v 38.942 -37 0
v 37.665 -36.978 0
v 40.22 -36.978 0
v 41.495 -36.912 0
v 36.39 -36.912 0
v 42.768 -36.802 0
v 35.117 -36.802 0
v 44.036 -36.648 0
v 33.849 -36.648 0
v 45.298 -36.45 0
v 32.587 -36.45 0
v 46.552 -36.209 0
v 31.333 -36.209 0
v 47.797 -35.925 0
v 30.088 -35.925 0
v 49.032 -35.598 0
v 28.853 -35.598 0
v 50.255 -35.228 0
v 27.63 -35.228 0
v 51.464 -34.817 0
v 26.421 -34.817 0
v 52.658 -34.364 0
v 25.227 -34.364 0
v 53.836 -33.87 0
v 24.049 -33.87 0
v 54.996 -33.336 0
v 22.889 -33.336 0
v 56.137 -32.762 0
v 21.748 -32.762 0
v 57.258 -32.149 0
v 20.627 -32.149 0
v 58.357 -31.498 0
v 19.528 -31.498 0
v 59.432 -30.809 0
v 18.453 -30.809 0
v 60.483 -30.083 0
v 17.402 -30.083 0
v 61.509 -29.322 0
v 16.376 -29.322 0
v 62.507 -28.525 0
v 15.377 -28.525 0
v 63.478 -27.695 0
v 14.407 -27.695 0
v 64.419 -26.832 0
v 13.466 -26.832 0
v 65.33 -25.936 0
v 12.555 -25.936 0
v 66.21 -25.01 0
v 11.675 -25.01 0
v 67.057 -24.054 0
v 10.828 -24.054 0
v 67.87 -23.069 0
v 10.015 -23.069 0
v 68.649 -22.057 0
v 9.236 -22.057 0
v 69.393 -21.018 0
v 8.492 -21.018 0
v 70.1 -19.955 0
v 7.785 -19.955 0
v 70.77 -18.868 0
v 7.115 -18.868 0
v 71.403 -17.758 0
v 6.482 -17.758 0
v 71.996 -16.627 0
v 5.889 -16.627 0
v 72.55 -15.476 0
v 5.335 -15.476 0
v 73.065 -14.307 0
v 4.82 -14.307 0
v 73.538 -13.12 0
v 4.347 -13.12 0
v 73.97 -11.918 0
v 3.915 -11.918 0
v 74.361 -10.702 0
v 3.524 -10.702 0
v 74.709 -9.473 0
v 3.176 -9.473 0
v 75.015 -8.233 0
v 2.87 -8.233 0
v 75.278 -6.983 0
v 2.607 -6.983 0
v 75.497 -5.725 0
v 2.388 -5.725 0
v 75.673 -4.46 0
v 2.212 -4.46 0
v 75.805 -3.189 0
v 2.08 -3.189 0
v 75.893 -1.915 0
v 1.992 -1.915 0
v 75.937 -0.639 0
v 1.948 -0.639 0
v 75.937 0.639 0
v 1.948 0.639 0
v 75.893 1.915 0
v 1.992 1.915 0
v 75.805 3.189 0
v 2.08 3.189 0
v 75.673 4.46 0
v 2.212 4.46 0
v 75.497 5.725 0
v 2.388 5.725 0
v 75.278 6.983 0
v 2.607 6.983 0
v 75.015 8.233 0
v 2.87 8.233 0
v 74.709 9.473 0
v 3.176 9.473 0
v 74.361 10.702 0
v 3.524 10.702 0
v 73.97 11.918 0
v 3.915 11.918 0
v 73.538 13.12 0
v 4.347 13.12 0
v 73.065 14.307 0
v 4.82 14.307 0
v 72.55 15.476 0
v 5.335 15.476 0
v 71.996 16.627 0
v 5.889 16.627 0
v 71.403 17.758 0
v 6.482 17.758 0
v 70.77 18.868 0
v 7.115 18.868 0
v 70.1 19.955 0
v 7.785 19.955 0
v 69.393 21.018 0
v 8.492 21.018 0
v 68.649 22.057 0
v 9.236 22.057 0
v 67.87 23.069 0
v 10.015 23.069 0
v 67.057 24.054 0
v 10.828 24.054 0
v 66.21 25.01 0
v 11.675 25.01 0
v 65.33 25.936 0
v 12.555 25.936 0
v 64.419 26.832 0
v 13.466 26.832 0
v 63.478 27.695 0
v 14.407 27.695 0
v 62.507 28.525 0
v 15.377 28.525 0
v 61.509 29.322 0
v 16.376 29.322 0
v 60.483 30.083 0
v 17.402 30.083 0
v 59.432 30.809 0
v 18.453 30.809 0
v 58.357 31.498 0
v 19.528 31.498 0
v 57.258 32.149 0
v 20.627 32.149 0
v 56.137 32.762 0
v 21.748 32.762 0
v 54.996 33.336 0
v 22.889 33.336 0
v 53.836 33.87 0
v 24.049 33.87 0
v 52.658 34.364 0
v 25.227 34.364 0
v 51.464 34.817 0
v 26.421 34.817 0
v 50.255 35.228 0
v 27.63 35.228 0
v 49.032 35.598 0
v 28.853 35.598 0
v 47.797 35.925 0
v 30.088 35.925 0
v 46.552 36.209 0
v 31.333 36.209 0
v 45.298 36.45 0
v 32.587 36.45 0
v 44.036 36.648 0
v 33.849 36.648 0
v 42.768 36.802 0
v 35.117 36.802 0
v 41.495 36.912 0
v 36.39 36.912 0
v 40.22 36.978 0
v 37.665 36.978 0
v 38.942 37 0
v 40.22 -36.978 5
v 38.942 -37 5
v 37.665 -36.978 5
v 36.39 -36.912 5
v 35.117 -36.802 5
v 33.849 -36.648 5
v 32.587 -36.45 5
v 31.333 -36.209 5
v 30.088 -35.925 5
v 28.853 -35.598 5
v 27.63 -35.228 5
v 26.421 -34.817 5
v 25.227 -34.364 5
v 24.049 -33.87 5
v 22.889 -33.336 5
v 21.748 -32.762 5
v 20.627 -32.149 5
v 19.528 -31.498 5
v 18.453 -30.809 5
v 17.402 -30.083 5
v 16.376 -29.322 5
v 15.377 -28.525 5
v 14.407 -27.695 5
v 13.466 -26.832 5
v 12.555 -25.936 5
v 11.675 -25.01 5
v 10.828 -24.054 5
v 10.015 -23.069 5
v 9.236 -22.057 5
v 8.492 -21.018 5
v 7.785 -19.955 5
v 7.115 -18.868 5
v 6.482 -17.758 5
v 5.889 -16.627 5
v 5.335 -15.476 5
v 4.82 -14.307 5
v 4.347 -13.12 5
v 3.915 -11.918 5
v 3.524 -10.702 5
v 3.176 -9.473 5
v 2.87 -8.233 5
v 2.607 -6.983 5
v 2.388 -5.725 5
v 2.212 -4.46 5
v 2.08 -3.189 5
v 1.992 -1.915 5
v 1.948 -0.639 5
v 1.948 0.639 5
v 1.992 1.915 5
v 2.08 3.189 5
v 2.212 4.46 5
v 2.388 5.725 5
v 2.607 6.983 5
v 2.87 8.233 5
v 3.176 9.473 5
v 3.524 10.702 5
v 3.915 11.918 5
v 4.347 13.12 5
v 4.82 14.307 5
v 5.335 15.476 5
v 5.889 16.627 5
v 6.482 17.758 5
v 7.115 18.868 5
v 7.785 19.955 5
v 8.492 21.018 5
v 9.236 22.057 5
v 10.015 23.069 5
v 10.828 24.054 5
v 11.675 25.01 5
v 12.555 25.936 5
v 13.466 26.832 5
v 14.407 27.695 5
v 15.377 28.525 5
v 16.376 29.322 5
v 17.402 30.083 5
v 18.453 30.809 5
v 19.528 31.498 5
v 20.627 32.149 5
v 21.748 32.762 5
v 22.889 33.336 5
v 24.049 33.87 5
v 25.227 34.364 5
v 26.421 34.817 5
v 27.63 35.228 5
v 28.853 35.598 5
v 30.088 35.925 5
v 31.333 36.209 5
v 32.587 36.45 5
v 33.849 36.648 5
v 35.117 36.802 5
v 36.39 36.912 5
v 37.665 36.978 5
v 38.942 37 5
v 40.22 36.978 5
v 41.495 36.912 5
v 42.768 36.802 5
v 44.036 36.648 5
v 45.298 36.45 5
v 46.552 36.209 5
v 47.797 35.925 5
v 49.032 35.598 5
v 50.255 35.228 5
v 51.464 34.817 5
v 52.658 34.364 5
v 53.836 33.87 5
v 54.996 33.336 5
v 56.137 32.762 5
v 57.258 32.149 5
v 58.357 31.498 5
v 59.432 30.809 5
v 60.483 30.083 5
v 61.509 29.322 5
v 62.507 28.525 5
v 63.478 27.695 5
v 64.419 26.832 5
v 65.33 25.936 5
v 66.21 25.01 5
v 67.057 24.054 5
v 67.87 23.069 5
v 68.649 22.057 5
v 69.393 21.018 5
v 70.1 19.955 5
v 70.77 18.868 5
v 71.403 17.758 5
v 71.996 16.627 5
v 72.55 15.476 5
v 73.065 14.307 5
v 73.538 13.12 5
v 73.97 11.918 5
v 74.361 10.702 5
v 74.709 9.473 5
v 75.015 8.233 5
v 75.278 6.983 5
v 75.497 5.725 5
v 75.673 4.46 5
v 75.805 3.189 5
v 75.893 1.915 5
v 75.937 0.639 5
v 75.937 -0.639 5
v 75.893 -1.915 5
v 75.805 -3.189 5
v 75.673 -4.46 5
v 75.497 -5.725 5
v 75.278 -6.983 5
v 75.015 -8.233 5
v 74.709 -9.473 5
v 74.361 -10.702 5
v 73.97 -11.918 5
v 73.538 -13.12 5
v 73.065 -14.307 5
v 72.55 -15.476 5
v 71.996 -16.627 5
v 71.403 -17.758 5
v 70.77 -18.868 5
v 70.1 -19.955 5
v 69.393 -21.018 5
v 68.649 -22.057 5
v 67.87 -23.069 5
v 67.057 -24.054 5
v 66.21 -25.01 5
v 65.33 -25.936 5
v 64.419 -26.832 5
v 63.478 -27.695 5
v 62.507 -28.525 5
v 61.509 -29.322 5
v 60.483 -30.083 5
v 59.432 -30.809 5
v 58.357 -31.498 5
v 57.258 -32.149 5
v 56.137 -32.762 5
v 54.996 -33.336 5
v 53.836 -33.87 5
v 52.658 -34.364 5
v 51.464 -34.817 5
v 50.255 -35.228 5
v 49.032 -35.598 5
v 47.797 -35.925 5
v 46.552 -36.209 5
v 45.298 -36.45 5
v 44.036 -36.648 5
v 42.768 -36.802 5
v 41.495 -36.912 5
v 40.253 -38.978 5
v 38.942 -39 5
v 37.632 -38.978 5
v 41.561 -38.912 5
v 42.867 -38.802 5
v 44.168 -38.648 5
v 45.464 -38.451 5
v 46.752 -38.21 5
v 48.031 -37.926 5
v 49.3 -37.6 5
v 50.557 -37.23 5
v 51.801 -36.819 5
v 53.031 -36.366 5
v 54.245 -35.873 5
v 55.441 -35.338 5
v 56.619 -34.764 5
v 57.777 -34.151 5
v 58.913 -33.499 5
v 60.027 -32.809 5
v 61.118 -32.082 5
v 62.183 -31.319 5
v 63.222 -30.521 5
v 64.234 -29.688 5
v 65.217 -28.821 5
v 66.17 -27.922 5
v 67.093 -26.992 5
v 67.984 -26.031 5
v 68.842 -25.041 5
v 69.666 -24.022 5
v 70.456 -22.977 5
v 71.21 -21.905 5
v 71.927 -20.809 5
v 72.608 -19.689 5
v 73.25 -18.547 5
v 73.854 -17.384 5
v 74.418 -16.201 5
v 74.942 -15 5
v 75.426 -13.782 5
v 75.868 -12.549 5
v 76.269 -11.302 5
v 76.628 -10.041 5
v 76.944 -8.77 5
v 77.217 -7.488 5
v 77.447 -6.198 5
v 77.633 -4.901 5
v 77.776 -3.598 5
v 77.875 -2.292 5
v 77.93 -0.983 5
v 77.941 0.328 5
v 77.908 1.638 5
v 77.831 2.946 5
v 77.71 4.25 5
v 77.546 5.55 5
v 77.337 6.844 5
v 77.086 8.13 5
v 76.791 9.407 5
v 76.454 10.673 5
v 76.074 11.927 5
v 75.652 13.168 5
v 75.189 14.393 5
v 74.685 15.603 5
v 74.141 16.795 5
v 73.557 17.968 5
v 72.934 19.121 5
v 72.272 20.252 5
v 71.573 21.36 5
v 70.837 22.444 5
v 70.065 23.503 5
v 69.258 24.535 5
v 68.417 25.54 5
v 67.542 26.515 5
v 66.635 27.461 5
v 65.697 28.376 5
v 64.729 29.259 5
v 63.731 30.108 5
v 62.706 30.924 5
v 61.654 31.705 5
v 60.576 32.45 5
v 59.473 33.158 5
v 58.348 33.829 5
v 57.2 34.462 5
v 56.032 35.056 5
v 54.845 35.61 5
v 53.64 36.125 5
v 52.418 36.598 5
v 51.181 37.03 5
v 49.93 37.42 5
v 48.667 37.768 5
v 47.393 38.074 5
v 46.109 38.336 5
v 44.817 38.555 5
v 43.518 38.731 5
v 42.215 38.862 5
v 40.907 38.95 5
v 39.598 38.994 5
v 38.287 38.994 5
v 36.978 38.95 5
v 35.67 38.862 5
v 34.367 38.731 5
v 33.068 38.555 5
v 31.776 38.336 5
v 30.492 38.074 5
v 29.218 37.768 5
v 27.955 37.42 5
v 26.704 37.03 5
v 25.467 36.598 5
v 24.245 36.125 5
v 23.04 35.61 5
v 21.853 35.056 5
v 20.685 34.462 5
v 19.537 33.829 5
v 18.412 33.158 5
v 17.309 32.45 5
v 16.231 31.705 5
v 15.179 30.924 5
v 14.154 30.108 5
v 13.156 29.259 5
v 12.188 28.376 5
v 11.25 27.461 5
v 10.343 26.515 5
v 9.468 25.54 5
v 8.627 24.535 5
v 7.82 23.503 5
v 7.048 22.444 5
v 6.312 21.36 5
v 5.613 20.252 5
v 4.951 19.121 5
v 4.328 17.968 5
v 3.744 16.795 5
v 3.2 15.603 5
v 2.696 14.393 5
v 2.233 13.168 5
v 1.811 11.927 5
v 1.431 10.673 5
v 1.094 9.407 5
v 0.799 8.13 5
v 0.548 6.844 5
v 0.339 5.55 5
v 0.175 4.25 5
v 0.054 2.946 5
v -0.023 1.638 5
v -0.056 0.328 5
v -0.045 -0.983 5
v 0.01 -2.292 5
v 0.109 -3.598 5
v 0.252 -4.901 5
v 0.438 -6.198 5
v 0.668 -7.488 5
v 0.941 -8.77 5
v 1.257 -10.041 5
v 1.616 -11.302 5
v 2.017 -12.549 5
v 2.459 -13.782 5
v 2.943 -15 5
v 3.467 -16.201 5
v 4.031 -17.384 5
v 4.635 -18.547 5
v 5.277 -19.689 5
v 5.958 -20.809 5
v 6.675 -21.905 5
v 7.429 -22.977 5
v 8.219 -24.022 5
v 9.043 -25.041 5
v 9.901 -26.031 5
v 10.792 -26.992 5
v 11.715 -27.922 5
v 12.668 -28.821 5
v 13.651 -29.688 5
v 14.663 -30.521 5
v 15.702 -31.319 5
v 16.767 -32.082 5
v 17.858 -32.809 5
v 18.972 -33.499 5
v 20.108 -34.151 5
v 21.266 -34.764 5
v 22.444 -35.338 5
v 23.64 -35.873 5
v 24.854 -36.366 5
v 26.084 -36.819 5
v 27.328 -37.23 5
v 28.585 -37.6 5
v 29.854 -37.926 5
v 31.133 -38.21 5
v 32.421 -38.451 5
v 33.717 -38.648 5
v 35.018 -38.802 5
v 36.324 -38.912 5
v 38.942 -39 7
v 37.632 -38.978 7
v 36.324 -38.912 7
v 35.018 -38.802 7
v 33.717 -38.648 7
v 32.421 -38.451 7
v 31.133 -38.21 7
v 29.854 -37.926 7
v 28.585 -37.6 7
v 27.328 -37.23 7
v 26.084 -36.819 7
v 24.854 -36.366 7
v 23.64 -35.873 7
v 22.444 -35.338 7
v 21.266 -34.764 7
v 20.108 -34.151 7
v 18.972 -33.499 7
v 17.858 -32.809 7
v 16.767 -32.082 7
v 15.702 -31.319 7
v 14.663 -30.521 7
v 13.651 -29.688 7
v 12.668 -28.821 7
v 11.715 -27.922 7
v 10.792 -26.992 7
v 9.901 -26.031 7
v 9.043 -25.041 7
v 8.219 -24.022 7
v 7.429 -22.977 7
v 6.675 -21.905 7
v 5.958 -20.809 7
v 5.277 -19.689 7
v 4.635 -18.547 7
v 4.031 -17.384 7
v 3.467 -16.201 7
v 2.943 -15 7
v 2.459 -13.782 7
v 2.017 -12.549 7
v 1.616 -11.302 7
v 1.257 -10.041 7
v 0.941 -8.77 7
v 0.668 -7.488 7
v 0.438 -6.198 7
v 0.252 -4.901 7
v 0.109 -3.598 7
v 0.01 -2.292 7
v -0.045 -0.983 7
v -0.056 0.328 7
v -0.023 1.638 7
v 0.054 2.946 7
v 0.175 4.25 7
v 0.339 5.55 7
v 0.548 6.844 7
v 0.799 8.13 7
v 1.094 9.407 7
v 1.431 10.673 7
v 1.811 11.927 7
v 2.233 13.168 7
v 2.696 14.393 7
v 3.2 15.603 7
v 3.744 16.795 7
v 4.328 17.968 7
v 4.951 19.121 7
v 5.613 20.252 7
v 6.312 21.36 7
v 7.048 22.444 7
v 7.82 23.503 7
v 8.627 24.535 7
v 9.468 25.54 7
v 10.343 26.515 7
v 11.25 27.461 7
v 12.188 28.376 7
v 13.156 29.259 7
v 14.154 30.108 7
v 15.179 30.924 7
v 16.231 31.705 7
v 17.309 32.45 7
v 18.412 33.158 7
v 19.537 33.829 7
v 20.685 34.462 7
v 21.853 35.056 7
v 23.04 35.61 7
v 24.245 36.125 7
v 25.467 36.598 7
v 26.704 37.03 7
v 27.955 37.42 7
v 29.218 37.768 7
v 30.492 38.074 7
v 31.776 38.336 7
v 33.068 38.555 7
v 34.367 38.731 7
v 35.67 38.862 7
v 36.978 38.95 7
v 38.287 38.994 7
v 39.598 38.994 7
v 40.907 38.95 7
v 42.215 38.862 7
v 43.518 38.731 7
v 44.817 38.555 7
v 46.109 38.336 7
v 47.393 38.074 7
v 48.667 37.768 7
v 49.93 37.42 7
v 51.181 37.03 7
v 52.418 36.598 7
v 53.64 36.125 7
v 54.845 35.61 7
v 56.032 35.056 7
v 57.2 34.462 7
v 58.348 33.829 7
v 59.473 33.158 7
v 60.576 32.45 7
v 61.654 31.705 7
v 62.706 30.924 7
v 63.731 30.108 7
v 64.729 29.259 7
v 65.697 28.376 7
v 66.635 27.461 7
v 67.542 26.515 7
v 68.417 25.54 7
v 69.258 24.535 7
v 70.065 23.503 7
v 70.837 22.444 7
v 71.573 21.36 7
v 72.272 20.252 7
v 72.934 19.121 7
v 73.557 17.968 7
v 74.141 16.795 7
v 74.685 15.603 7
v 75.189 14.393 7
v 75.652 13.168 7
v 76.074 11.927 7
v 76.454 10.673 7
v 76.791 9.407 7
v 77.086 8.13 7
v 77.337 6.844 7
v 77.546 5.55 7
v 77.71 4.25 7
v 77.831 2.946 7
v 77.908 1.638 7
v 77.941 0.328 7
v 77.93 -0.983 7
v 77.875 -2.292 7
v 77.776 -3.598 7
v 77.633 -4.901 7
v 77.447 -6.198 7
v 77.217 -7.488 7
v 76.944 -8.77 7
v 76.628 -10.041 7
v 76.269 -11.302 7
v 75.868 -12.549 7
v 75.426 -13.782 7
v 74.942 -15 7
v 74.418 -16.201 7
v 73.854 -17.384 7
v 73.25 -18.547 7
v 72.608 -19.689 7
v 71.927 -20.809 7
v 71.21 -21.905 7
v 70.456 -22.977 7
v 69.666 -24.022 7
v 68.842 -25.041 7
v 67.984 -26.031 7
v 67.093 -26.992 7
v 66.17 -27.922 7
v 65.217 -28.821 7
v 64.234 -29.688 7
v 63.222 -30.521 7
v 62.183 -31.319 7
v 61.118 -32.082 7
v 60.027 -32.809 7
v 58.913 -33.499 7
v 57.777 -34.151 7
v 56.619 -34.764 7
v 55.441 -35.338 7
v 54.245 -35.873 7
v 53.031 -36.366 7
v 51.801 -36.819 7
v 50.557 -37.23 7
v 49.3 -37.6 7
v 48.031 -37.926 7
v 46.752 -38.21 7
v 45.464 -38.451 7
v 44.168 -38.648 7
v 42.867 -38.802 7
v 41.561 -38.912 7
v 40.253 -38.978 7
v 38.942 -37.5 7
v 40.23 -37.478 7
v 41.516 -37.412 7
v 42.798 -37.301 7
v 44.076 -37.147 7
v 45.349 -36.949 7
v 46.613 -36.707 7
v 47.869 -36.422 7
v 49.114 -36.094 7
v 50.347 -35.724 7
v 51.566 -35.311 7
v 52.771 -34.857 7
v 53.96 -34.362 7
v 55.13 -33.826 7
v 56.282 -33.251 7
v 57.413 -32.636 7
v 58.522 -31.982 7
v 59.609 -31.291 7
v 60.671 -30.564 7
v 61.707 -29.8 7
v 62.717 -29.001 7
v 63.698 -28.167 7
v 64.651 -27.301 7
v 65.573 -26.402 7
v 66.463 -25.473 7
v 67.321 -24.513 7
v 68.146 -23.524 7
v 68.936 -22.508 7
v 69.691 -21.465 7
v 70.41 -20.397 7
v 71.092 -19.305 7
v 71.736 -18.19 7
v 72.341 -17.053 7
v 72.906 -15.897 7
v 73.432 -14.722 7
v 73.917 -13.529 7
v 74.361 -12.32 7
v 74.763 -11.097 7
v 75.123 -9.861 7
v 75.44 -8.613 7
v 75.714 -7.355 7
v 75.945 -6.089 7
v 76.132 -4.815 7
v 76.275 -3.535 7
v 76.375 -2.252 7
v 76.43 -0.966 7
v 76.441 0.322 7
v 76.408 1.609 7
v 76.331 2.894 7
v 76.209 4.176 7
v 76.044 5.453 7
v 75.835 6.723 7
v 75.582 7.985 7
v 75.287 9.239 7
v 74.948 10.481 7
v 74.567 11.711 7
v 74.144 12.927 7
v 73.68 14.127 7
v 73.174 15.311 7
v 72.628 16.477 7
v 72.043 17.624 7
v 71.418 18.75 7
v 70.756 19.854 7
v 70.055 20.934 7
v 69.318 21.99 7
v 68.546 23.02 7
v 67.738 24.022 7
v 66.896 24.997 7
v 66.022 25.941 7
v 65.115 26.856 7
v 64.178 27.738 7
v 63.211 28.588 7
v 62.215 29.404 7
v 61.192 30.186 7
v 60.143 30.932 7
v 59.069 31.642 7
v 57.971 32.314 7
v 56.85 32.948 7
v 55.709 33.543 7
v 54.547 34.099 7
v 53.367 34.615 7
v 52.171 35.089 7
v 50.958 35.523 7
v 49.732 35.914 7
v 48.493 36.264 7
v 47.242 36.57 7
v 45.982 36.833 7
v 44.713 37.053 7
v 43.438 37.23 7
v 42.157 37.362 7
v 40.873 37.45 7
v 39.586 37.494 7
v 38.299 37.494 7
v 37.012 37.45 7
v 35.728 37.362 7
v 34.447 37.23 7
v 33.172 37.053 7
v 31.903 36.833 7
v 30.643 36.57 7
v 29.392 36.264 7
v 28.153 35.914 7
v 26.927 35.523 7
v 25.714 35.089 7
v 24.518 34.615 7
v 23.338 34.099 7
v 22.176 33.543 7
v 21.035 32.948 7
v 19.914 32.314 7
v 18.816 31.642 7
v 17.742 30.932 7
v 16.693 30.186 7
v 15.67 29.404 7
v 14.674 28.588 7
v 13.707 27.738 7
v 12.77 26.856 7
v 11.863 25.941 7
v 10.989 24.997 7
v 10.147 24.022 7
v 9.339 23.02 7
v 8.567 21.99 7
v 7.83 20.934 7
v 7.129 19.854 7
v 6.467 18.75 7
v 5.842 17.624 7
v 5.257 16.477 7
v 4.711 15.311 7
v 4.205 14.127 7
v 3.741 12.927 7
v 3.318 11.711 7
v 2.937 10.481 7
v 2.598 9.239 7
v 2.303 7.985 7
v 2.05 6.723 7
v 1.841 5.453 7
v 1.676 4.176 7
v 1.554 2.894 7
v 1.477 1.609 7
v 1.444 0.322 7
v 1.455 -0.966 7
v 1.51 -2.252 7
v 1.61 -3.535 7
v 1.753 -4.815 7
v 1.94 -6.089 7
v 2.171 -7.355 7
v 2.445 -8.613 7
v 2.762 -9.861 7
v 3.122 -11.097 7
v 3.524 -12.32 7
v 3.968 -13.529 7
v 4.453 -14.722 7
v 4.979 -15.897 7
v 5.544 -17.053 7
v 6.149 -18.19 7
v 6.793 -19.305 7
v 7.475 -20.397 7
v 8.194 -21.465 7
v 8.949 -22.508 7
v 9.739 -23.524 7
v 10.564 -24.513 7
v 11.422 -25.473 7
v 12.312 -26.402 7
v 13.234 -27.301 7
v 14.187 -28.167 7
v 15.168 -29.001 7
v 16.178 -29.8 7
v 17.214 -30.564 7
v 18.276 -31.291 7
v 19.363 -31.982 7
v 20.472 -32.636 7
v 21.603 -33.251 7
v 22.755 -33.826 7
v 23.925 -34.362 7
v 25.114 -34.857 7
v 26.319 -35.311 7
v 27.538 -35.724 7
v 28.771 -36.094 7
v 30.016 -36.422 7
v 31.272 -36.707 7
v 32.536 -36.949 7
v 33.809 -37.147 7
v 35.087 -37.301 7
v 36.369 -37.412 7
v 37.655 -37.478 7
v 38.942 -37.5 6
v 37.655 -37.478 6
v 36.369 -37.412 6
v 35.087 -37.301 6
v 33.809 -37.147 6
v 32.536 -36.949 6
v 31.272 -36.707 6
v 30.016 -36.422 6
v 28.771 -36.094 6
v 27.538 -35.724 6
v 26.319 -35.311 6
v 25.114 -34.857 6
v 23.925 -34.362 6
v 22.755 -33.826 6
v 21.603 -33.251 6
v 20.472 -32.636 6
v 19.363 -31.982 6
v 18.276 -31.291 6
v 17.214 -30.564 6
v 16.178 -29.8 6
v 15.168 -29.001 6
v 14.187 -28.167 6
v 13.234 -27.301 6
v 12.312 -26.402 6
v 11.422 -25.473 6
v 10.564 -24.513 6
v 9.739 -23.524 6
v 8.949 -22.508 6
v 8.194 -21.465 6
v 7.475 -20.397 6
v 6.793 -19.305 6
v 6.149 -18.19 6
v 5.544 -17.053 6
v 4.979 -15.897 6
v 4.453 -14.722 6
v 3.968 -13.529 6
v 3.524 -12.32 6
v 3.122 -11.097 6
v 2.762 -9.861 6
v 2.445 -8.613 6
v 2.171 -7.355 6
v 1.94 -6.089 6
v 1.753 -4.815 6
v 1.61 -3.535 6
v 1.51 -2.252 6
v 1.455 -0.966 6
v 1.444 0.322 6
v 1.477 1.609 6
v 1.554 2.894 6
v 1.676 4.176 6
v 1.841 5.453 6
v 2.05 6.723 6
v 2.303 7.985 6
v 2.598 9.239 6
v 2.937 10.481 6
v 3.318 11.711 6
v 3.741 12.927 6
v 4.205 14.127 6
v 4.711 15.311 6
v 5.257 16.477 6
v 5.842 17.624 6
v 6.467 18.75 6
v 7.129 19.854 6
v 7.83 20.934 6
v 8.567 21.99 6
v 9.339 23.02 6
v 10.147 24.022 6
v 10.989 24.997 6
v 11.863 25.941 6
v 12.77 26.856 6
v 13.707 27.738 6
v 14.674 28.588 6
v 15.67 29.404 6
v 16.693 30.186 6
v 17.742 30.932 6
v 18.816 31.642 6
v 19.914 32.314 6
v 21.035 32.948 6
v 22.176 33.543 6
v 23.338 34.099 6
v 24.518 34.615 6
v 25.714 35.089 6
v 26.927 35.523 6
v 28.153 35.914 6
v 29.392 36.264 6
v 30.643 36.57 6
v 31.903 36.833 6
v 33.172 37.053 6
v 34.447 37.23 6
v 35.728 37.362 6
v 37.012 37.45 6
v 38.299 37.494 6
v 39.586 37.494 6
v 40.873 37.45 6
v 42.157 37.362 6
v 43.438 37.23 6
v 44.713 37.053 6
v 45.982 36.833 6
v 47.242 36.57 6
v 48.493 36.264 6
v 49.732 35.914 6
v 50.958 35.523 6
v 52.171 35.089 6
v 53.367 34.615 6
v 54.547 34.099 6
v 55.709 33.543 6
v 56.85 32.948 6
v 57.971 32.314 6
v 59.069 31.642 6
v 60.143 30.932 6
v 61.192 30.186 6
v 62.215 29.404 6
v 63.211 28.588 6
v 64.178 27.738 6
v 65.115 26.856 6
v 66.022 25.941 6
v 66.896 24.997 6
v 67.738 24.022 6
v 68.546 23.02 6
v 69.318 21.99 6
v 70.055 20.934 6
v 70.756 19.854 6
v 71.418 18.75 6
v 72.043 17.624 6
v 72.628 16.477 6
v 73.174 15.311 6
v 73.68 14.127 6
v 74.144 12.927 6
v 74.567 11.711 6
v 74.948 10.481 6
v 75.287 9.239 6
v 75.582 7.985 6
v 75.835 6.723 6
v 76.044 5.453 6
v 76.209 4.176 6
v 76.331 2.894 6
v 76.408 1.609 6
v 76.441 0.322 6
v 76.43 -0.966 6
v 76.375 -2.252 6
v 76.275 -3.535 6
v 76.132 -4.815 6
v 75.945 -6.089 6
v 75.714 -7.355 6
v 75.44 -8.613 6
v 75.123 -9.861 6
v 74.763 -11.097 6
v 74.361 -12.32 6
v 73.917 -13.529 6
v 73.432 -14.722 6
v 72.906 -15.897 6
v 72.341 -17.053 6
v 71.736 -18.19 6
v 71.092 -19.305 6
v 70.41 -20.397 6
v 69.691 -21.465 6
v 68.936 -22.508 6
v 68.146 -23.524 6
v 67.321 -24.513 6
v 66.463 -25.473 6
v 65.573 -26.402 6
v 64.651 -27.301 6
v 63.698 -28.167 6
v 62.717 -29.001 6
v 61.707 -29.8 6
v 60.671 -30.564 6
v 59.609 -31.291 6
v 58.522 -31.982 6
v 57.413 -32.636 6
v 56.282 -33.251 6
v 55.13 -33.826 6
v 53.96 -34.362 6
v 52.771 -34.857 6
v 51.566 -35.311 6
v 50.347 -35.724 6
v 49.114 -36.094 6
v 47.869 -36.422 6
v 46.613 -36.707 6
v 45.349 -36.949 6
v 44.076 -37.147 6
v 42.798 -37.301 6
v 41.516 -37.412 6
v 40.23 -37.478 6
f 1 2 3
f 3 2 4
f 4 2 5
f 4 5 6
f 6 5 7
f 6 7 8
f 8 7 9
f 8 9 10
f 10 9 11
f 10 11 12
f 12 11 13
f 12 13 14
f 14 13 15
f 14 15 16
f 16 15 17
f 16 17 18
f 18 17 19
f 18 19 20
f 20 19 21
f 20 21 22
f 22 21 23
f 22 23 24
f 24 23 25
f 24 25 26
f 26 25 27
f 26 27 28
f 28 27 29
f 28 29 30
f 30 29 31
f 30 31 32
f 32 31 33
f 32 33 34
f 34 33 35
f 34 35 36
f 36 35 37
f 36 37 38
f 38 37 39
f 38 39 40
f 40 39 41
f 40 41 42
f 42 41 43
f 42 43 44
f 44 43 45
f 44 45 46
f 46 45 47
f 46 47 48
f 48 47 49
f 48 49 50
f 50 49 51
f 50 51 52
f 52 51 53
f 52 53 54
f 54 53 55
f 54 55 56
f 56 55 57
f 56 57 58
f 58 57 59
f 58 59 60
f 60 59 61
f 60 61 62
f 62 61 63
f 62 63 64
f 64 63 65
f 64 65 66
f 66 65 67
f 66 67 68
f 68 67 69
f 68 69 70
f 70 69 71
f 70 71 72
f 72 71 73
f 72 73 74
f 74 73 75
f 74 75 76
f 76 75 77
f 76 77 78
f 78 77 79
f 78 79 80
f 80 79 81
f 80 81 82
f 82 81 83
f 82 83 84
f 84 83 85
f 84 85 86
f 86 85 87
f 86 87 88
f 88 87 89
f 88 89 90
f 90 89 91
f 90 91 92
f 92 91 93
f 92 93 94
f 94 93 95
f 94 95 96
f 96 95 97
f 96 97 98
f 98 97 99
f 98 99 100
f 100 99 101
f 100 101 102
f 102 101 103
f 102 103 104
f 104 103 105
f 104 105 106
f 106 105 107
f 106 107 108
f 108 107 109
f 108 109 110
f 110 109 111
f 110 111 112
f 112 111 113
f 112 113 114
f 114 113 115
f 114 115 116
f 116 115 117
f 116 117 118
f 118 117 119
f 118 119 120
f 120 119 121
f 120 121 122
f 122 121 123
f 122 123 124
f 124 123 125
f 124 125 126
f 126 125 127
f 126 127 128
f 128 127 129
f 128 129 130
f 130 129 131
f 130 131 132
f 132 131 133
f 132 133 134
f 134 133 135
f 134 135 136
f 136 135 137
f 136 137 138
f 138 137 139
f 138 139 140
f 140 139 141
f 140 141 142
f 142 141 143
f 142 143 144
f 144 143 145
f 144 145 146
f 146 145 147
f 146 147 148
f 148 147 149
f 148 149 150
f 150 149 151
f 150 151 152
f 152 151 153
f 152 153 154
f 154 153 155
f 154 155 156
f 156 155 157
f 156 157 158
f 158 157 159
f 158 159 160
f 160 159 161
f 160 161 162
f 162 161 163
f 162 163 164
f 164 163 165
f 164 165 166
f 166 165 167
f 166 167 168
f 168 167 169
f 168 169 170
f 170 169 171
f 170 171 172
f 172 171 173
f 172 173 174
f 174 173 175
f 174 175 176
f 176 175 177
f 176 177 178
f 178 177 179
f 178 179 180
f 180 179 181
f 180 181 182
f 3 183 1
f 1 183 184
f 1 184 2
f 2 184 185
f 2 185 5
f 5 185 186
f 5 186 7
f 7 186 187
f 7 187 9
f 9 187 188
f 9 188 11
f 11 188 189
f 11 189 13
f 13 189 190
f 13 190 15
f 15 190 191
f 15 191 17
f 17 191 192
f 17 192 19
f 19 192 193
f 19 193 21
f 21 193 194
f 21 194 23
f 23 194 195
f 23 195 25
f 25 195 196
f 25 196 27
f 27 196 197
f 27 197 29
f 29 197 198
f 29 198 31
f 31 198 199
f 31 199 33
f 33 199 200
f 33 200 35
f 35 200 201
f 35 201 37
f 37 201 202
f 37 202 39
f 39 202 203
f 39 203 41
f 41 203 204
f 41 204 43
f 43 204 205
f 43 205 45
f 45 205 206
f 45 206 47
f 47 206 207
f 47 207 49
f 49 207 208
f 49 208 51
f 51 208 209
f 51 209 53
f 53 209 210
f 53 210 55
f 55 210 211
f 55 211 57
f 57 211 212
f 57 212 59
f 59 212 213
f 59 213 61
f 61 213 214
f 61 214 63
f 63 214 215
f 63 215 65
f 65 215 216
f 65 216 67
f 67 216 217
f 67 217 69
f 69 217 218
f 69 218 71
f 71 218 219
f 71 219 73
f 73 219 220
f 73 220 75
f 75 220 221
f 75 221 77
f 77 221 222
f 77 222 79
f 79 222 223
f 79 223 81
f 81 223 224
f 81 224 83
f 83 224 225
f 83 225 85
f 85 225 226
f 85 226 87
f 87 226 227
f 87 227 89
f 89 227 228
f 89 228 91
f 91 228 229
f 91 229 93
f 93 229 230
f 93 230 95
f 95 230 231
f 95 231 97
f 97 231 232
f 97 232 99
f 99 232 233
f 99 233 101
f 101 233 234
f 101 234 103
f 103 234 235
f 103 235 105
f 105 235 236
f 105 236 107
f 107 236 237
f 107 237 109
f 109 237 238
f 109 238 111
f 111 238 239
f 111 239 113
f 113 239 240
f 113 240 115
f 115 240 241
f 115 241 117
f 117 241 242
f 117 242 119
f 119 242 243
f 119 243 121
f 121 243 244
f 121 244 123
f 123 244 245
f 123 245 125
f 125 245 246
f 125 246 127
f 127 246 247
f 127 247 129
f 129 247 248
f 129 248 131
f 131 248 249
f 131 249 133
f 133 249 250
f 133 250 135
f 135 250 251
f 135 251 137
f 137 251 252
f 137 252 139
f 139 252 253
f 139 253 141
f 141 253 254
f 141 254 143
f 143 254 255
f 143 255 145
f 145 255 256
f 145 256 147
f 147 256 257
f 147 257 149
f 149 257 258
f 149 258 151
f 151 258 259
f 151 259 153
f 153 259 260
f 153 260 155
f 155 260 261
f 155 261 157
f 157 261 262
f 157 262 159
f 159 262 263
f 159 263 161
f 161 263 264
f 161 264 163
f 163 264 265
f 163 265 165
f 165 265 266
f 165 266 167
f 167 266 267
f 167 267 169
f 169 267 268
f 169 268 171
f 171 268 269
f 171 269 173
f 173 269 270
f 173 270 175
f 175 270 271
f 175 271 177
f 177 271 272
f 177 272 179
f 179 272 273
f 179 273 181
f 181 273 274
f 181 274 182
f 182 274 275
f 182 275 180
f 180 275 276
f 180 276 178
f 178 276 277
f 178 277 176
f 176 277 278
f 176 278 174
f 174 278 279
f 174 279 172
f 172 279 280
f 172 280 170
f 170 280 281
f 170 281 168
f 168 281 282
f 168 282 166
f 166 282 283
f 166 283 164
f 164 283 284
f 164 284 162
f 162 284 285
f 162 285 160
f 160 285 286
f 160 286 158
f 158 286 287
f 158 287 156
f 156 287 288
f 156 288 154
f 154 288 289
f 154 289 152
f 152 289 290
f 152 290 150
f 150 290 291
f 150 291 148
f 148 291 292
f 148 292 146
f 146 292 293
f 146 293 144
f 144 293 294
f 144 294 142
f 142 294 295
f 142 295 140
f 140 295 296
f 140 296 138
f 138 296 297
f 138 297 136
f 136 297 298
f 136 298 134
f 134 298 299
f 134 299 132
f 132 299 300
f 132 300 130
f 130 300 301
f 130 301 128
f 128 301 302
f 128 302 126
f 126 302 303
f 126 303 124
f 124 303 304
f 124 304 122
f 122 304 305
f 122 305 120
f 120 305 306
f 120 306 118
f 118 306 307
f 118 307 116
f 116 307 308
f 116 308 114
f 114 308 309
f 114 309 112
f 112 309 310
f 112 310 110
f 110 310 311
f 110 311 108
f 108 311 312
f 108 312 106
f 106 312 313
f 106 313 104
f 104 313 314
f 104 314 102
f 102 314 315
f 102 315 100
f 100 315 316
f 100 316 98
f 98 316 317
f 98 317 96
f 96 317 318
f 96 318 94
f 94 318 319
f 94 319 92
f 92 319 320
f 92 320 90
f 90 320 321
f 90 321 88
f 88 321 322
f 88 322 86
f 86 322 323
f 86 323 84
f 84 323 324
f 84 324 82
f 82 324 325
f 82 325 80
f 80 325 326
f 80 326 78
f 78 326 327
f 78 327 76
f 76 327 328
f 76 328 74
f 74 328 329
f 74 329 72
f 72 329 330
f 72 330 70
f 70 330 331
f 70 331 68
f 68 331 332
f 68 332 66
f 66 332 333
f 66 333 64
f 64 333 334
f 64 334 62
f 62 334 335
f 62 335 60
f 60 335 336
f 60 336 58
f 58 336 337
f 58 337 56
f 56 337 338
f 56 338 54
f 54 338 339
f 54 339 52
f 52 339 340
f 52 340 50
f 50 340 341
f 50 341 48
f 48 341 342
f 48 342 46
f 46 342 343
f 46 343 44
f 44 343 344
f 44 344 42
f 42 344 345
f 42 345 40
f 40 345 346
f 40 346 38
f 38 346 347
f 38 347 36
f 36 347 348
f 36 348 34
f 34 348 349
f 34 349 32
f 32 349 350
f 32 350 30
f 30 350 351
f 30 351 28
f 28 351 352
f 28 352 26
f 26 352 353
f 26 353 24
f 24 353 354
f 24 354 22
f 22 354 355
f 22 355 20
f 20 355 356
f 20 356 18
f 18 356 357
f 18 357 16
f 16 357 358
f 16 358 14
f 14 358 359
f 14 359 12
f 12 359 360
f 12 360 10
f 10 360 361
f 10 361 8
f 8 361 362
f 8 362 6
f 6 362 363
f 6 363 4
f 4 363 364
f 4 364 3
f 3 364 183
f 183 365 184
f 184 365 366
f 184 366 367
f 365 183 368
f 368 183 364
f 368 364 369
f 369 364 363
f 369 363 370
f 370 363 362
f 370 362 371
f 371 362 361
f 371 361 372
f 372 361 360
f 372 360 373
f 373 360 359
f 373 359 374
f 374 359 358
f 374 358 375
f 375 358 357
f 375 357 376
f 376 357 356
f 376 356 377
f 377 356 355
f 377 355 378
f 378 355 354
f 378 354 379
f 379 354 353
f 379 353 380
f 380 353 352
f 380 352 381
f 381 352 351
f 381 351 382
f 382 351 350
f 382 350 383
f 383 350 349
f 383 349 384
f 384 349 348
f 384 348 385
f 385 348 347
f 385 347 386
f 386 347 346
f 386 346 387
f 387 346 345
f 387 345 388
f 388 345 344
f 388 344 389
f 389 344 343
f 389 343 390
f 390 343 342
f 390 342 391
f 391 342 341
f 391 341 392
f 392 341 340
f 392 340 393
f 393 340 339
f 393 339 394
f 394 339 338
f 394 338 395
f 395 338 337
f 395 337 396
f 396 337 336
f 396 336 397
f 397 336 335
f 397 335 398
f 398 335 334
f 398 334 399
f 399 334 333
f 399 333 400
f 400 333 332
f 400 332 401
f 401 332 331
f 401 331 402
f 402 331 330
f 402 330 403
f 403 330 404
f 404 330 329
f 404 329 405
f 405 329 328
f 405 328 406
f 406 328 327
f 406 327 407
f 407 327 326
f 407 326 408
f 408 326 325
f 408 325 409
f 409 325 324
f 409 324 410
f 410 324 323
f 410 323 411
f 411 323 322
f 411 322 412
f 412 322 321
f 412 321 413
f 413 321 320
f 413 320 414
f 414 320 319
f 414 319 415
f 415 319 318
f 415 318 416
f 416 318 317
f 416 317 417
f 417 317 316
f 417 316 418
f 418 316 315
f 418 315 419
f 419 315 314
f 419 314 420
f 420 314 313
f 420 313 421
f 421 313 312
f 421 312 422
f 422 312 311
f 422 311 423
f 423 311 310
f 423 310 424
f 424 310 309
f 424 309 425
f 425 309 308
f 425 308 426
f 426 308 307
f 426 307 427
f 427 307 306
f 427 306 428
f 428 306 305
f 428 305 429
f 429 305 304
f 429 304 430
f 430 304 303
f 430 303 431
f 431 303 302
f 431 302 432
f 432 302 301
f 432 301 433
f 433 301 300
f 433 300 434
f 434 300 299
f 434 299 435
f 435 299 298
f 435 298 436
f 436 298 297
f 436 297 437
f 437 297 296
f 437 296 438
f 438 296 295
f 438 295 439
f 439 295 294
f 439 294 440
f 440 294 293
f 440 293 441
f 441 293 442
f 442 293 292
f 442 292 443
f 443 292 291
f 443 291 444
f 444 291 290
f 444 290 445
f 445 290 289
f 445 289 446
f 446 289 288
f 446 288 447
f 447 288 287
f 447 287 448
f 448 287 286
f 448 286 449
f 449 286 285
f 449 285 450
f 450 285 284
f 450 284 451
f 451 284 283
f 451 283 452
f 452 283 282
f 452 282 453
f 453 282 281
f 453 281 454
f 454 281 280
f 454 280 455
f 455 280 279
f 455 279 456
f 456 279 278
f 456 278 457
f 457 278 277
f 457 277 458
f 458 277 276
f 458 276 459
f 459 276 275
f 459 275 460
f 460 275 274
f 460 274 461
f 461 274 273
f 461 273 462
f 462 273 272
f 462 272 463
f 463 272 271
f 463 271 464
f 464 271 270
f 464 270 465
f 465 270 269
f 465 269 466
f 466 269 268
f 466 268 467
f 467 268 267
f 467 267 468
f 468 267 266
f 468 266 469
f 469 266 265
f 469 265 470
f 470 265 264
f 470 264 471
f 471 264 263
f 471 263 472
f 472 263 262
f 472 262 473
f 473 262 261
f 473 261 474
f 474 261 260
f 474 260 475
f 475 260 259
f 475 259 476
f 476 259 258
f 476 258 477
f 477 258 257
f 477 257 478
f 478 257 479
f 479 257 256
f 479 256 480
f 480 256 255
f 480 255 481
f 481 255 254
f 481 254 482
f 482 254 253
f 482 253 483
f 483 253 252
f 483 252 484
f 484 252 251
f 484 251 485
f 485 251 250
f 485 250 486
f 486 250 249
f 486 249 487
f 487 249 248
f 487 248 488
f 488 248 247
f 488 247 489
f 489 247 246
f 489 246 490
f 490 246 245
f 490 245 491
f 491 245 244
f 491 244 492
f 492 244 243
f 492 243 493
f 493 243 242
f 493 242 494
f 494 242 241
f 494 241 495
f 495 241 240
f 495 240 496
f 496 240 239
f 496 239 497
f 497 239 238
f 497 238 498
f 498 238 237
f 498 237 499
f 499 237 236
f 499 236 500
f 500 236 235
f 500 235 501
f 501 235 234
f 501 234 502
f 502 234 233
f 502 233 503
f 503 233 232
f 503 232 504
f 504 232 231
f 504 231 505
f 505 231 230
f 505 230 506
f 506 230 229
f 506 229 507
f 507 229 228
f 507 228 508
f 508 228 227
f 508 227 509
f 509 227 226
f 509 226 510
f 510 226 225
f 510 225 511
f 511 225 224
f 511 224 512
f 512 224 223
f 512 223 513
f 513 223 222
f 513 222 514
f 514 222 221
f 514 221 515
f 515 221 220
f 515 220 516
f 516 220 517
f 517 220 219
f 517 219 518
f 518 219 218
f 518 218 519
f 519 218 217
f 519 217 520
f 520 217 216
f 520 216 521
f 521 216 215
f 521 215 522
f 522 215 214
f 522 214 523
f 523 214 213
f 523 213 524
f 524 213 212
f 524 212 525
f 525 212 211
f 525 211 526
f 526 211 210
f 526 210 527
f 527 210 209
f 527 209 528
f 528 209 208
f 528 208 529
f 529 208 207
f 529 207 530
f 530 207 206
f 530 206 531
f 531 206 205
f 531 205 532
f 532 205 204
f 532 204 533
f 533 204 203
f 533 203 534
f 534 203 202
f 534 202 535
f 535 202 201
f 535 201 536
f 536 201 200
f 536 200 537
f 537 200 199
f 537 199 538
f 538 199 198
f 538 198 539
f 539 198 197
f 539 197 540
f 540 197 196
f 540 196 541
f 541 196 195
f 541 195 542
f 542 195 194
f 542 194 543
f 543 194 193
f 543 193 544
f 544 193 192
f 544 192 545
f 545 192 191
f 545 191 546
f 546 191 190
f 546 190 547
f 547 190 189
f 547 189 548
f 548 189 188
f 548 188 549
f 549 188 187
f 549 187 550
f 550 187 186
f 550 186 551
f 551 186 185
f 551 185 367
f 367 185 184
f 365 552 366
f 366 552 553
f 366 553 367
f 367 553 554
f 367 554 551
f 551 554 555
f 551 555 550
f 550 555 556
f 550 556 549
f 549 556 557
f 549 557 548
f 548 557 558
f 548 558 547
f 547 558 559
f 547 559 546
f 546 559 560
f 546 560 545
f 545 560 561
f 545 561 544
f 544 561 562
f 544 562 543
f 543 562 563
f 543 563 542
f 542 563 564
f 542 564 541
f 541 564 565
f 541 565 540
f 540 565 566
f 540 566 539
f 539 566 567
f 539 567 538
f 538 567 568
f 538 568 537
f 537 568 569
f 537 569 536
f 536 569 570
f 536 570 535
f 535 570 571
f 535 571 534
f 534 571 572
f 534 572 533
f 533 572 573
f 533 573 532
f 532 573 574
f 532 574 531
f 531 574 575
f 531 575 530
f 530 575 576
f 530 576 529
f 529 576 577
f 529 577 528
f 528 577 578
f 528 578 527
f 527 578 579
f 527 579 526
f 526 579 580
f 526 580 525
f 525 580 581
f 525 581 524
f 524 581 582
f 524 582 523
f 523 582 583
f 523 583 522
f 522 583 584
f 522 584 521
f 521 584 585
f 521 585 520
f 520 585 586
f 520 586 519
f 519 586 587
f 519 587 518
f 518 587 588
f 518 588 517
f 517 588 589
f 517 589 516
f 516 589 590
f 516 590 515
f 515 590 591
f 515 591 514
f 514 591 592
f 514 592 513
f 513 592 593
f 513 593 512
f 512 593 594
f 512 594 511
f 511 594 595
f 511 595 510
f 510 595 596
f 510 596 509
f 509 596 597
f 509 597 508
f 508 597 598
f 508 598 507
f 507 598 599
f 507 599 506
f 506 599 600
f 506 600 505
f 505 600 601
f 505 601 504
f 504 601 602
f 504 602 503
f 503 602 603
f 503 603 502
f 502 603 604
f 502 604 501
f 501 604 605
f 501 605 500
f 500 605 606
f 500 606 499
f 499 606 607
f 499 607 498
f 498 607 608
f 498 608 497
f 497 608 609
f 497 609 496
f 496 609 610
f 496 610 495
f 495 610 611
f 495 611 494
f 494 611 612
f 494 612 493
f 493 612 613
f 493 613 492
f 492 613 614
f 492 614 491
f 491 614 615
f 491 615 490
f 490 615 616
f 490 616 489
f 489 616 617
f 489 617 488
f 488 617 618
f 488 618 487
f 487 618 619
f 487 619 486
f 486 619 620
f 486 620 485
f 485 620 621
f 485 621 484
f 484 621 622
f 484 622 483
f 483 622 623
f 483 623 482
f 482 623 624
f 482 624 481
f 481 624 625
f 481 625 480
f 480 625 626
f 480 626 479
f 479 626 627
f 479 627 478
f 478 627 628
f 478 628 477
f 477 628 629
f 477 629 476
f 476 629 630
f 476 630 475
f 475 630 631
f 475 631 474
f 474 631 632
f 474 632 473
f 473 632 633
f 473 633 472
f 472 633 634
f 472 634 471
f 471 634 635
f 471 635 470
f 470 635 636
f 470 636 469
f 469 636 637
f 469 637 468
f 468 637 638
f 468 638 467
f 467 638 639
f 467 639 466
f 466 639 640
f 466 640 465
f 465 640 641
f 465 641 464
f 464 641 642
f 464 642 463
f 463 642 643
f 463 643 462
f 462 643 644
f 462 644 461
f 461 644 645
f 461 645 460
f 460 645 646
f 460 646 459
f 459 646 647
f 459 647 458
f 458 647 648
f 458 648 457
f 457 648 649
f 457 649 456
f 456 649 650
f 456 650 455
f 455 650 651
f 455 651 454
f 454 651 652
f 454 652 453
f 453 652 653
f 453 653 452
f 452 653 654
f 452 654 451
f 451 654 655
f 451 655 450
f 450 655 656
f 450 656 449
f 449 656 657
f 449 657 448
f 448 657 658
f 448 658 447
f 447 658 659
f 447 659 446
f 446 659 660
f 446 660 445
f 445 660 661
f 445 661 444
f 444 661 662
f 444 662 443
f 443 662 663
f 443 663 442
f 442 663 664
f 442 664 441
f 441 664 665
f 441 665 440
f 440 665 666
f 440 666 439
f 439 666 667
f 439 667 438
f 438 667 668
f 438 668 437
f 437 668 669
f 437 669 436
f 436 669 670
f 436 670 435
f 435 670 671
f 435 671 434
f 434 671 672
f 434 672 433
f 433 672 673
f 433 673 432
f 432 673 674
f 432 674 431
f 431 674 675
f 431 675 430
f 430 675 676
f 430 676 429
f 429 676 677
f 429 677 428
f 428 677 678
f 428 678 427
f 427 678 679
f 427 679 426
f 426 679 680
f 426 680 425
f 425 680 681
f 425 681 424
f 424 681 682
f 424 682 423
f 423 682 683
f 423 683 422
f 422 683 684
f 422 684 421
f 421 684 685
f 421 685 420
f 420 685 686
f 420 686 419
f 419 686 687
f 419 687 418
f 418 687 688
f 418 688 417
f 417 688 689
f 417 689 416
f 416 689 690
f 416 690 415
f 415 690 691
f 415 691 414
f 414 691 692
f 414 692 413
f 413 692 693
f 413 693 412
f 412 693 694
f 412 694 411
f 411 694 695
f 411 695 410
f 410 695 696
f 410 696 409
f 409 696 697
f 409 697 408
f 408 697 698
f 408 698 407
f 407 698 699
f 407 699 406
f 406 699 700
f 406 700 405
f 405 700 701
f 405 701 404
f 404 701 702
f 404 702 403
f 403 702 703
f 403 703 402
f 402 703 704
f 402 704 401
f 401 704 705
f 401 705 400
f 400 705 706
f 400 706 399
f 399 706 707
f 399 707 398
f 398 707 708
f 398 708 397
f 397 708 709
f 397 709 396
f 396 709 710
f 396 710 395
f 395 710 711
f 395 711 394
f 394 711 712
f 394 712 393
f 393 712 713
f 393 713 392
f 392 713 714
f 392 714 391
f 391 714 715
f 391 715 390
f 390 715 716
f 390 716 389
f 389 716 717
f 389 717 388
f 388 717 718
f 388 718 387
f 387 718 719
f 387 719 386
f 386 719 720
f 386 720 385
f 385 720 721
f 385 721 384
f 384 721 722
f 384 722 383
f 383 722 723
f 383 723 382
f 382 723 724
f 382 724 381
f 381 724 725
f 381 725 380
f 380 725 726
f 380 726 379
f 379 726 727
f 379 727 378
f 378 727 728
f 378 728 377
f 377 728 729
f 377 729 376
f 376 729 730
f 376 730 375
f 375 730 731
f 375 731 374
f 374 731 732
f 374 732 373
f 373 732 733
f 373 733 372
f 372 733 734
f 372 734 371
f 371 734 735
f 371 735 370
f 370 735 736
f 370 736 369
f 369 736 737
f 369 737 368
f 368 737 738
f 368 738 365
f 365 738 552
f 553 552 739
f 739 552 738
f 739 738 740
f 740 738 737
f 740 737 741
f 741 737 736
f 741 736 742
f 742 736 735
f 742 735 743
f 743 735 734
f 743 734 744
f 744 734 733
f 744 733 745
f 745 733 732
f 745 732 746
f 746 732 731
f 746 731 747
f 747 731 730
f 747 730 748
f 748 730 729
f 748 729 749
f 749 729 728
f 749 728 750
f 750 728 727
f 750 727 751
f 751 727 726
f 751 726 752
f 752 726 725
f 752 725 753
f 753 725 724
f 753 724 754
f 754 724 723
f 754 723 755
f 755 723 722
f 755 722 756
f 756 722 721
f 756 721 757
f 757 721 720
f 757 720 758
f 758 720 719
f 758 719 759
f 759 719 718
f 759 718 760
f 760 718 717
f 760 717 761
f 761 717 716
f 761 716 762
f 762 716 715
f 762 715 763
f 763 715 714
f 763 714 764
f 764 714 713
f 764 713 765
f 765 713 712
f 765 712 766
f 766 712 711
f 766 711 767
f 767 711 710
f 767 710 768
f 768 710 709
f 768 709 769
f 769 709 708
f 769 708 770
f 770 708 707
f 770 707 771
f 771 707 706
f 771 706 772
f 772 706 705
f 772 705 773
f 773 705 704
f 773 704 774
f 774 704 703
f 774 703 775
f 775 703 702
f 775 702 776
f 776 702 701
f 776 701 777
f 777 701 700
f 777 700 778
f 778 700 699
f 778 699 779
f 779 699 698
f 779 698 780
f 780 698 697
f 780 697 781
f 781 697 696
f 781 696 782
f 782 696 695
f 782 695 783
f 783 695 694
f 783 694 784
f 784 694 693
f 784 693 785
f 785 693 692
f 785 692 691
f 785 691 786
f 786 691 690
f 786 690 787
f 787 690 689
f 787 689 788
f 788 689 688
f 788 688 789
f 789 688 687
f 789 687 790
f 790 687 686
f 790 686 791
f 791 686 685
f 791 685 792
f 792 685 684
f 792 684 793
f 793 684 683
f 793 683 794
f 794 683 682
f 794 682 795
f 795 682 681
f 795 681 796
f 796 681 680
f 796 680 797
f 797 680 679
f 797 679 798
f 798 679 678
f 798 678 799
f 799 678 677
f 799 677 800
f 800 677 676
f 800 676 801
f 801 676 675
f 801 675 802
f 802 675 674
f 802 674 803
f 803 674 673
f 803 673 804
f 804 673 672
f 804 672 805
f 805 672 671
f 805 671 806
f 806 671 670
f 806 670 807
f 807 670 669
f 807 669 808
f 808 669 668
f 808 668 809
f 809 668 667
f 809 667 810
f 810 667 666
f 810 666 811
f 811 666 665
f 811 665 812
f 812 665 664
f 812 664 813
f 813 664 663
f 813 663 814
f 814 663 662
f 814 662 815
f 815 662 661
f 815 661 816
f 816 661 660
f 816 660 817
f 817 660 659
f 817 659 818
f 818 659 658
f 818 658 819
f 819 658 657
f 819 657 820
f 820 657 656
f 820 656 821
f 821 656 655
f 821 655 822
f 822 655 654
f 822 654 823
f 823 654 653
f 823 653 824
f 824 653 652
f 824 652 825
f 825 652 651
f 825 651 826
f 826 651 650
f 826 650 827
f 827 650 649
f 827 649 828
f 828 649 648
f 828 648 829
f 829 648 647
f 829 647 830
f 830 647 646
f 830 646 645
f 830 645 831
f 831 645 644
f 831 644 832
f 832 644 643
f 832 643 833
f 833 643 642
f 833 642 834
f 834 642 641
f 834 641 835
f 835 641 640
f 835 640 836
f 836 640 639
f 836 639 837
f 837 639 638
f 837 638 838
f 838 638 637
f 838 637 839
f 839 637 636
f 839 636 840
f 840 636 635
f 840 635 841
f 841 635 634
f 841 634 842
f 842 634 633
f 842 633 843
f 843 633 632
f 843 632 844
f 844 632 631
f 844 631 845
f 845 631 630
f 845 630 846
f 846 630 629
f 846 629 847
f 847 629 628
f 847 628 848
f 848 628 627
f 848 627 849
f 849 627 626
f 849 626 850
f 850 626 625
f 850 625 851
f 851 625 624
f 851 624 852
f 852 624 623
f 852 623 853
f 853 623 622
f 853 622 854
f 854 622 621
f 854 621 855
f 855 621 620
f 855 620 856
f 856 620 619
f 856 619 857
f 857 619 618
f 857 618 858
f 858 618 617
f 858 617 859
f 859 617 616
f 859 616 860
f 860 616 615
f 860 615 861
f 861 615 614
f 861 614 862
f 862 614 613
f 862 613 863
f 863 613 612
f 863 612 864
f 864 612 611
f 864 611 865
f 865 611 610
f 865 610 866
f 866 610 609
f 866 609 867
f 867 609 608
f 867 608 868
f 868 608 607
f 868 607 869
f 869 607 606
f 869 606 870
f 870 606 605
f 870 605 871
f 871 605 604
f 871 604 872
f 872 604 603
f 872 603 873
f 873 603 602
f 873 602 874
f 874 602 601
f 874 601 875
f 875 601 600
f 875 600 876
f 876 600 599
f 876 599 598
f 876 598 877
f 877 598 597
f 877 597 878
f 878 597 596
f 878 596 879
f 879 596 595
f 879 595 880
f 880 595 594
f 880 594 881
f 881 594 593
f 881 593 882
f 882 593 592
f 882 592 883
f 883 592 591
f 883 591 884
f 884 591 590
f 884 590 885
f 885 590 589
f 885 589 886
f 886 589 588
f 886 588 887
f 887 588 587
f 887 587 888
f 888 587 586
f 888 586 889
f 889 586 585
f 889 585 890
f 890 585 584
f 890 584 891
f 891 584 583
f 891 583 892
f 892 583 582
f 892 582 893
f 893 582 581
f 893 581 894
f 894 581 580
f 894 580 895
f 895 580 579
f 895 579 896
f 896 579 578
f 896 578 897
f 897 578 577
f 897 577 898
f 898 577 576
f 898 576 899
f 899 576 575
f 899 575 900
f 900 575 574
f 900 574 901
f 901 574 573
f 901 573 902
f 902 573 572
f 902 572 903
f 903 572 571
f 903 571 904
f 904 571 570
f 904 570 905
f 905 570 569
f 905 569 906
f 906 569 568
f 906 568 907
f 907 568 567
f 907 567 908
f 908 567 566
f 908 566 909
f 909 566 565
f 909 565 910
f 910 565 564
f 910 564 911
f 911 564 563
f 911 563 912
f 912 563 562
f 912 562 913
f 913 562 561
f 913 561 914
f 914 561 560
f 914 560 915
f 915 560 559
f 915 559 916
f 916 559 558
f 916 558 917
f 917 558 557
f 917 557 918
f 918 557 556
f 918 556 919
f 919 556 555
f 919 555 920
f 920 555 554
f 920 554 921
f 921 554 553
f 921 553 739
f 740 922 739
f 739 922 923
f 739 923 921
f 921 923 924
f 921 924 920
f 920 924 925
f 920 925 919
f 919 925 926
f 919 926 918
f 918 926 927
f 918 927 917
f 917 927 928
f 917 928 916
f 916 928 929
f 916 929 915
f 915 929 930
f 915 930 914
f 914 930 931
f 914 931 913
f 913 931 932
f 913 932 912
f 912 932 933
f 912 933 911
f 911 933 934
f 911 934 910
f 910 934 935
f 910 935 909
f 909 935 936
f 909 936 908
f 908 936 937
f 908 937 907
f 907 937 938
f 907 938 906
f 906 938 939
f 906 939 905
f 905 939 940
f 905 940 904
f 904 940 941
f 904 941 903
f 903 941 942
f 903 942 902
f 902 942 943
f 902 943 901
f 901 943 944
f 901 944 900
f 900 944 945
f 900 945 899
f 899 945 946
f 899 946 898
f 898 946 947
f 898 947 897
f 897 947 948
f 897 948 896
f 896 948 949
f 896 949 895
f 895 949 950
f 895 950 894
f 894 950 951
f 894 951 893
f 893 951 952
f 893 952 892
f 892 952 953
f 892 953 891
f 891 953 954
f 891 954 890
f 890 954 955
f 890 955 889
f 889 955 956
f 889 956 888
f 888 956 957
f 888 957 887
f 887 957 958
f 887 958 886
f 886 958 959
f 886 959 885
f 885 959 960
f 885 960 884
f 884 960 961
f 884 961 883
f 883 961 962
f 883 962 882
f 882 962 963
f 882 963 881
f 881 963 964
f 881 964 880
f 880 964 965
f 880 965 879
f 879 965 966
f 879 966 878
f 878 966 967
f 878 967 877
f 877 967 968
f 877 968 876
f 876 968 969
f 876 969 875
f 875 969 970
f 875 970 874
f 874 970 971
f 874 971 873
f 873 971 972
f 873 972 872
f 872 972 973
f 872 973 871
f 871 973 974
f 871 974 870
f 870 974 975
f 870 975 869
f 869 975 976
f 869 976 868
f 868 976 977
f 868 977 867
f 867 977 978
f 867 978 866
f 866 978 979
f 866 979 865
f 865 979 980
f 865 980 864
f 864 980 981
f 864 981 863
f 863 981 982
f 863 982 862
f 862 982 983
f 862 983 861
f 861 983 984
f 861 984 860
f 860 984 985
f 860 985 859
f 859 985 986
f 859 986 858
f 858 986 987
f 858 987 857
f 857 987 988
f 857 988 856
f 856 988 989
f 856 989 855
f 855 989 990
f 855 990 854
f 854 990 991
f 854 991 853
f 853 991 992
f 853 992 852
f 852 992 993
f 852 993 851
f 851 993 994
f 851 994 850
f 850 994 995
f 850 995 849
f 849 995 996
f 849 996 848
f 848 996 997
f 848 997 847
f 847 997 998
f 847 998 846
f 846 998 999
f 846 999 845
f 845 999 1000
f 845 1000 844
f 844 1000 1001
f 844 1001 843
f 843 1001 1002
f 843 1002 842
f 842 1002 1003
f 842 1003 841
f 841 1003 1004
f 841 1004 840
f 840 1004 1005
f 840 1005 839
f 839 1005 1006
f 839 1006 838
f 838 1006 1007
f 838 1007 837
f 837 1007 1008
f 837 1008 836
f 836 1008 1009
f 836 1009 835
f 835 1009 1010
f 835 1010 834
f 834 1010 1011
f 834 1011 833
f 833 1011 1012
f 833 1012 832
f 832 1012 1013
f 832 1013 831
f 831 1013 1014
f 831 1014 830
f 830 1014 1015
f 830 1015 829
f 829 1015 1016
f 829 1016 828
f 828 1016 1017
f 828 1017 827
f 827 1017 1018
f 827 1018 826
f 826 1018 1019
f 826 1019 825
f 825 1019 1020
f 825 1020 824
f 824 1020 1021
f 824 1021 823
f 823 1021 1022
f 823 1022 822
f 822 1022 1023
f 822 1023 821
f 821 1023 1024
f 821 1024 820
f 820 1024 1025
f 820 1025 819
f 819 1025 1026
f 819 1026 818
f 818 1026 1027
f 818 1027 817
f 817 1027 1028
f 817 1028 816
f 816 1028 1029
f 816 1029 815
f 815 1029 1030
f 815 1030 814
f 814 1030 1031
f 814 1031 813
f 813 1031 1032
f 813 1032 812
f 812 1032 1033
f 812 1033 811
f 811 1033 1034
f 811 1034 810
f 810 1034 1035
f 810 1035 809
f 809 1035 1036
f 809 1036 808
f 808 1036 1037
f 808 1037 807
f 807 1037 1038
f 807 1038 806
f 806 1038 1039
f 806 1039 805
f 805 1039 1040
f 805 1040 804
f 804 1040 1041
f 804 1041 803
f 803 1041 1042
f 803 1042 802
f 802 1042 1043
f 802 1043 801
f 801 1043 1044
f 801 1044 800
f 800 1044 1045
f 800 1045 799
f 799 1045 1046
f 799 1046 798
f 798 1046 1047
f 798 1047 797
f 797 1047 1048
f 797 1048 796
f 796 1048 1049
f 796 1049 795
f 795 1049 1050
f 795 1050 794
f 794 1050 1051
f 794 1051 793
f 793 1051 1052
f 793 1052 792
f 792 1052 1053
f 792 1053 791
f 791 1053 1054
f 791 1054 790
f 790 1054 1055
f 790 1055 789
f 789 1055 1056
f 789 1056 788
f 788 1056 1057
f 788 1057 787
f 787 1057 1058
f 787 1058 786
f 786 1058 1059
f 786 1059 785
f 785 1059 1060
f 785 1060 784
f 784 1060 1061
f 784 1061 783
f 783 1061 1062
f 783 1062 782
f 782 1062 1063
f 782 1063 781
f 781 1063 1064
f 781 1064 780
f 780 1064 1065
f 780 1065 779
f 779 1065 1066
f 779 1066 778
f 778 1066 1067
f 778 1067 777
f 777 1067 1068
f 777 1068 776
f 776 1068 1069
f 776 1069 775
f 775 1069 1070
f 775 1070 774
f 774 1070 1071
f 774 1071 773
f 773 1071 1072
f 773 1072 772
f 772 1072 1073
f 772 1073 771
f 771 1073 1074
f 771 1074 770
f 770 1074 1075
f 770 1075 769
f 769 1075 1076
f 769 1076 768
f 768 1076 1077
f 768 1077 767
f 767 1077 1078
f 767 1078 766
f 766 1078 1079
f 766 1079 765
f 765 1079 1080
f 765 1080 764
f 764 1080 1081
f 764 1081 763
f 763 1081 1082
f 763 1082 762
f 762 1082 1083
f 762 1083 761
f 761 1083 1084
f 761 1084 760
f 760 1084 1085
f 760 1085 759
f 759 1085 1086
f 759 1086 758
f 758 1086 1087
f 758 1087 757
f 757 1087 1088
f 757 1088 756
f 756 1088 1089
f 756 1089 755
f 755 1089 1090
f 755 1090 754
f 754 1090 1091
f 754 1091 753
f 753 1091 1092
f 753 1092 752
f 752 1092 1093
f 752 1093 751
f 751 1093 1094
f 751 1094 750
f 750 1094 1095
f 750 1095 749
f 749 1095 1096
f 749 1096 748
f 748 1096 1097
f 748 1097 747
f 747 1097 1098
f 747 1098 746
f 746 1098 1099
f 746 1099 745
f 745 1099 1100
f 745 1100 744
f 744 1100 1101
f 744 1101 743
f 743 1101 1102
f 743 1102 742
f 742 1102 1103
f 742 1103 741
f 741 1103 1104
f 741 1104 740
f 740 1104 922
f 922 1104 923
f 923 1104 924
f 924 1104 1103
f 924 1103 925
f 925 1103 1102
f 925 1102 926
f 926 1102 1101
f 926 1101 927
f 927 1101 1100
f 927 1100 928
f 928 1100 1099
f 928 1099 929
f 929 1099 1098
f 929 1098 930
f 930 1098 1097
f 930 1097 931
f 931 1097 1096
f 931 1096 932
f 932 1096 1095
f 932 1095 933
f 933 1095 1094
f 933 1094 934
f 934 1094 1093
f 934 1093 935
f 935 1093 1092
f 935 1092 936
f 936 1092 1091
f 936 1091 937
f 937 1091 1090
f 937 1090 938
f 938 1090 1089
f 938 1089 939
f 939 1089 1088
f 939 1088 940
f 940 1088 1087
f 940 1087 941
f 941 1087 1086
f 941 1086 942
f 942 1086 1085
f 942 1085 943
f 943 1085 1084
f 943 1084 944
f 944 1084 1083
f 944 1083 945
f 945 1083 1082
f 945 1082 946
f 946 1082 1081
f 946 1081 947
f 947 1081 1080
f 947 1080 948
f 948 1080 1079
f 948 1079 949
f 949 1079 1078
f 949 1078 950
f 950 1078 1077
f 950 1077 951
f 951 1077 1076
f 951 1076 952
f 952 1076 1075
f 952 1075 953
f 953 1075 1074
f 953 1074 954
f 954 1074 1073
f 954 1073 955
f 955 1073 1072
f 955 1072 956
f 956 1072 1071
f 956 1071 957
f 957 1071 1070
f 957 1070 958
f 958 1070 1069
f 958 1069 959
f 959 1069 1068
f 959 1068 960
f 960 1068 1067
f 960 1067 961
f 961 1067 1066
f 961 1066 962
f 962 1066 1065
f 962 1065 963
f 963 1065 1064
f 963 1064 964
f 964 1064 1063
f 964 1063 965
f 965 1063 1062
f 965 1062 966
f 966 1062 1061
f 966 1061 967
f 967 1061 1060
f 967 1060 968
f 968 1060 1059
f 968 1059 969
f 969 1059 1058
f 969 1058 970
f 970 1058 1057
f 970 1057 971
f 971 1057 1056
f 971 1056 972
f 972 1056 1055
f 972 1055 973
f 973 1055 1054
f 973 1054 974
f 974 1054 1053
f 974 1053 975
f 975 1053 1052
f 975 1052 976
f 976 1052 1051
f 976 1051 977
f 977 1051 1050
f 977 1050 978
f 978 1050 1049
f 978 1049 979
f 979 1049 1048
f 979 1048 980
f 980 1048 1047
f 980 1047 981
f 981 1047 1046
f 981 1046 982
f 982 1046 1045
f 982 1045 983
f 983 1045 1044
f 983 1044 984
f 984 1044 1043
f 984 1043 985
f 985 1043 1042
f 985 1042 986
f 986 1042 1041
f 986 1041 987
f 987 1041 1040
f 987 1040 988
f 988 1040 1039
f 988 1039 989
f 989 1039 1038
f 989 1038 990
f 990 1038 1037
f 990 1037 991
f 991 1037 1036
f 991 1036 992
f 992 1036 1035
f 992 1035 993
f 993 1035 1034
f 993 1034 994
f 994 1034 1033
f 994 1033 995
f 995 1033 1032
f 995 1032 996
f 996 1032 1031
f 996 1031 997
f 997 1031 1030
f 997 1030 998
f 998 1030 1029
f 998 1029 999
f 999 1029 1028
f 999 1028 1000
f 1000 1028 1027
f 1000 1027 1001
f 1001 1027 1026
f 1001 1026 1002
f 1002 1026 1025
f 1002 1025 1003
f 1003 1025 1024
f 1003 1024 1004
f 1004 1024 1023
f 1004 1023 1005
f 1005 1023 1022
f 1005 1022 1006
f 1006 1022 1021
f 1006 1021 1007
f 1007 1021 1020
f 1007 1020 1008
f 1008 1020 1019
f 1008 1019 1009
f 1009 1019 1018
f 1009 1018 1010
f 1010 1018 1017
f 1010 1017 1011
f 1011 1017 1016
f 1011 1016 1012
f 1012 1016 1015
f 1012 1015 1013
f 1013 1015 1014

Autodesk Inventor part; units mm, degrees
ref_plane "XZ Plane" through (0, 0, 0) normal (0, 1, 0) x (-1, 0, 0)
ref_plane "XY Plane" through (0, 0, 0) normal (0, 0, 1) x (1, 0, 0)
sketch "草圖1" plane through (6.7908, 20.3797, 0) normal (0, 0, -1) x (-1, 0, 0)
  circle A0 centre (-32.1517, 18.5628) radius 37.1256 projected
  point P0 (6.7908, -20.3797)
ref_plane "工作平面1" through (38.9425, 38.9425, 0) normal (1, 0, 0) x (0, 1, 0)
sketch "草圖2" plane through (38.9425, 38.9425, 0) normal (1, 0, 0) x (0, 1, 0)
  line L0 (-38.9425, 0) -> (-38.9425, 6)
  line L1 (-38.9425, 6) -> (-76.4425, 6)
  line L2 (-76.4425, 6) -> (-76.4425, 7)
  line L3 (-76.4425, 7) -> (-77.9425, 7)
  line L4 (-77.9425, 7) -> (-77.9425, 5)
  line L5 (-77.9425, 5) -> (-75.9425, 5)
  line L6 (-75.9425, 5) -> (-75.9425, 0)
  line L7 (-75.9425, 0) -> (-38.9425, 0)
  dimension "d0" = 74
  dimension "d1" = 78
  dimension "d4" = 75
  dimension "d7" = 7
  dimension "d8" = 5
  dimension "d9" = 6
revolve "迴轉1" add sketch "草圖2" angle 360 about axis through (38.9425, 0, 0) along (0, 0, 1)
properties part number "下" material "SS41"
